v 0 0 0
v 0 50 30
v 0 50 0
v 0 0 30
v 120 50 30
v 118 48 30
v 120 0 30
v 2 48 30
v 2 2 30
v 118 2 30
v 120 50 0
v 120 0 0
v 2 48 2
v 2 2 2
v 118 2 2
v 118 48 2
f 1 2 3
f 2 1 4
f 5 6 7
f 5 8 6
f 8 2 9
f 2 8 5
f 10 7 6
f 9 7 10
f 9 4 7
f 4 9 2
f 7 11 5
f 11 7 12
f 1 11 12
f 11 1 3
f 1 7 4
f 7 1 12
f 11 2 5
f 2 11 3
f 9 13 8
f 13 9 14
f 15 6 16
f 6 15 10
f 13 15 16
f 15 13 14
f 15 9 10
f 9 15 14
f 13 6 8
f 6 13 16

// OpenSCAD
Length = 120;
Width = 50; 
Height = 30;
Wall = 2;

difference() {
	cube([Length, Width, Height]);
	translate([Wall, Wall, Wall])
		cube([Length-2 * Wall, Width-2 * Wall, Height]);
}
